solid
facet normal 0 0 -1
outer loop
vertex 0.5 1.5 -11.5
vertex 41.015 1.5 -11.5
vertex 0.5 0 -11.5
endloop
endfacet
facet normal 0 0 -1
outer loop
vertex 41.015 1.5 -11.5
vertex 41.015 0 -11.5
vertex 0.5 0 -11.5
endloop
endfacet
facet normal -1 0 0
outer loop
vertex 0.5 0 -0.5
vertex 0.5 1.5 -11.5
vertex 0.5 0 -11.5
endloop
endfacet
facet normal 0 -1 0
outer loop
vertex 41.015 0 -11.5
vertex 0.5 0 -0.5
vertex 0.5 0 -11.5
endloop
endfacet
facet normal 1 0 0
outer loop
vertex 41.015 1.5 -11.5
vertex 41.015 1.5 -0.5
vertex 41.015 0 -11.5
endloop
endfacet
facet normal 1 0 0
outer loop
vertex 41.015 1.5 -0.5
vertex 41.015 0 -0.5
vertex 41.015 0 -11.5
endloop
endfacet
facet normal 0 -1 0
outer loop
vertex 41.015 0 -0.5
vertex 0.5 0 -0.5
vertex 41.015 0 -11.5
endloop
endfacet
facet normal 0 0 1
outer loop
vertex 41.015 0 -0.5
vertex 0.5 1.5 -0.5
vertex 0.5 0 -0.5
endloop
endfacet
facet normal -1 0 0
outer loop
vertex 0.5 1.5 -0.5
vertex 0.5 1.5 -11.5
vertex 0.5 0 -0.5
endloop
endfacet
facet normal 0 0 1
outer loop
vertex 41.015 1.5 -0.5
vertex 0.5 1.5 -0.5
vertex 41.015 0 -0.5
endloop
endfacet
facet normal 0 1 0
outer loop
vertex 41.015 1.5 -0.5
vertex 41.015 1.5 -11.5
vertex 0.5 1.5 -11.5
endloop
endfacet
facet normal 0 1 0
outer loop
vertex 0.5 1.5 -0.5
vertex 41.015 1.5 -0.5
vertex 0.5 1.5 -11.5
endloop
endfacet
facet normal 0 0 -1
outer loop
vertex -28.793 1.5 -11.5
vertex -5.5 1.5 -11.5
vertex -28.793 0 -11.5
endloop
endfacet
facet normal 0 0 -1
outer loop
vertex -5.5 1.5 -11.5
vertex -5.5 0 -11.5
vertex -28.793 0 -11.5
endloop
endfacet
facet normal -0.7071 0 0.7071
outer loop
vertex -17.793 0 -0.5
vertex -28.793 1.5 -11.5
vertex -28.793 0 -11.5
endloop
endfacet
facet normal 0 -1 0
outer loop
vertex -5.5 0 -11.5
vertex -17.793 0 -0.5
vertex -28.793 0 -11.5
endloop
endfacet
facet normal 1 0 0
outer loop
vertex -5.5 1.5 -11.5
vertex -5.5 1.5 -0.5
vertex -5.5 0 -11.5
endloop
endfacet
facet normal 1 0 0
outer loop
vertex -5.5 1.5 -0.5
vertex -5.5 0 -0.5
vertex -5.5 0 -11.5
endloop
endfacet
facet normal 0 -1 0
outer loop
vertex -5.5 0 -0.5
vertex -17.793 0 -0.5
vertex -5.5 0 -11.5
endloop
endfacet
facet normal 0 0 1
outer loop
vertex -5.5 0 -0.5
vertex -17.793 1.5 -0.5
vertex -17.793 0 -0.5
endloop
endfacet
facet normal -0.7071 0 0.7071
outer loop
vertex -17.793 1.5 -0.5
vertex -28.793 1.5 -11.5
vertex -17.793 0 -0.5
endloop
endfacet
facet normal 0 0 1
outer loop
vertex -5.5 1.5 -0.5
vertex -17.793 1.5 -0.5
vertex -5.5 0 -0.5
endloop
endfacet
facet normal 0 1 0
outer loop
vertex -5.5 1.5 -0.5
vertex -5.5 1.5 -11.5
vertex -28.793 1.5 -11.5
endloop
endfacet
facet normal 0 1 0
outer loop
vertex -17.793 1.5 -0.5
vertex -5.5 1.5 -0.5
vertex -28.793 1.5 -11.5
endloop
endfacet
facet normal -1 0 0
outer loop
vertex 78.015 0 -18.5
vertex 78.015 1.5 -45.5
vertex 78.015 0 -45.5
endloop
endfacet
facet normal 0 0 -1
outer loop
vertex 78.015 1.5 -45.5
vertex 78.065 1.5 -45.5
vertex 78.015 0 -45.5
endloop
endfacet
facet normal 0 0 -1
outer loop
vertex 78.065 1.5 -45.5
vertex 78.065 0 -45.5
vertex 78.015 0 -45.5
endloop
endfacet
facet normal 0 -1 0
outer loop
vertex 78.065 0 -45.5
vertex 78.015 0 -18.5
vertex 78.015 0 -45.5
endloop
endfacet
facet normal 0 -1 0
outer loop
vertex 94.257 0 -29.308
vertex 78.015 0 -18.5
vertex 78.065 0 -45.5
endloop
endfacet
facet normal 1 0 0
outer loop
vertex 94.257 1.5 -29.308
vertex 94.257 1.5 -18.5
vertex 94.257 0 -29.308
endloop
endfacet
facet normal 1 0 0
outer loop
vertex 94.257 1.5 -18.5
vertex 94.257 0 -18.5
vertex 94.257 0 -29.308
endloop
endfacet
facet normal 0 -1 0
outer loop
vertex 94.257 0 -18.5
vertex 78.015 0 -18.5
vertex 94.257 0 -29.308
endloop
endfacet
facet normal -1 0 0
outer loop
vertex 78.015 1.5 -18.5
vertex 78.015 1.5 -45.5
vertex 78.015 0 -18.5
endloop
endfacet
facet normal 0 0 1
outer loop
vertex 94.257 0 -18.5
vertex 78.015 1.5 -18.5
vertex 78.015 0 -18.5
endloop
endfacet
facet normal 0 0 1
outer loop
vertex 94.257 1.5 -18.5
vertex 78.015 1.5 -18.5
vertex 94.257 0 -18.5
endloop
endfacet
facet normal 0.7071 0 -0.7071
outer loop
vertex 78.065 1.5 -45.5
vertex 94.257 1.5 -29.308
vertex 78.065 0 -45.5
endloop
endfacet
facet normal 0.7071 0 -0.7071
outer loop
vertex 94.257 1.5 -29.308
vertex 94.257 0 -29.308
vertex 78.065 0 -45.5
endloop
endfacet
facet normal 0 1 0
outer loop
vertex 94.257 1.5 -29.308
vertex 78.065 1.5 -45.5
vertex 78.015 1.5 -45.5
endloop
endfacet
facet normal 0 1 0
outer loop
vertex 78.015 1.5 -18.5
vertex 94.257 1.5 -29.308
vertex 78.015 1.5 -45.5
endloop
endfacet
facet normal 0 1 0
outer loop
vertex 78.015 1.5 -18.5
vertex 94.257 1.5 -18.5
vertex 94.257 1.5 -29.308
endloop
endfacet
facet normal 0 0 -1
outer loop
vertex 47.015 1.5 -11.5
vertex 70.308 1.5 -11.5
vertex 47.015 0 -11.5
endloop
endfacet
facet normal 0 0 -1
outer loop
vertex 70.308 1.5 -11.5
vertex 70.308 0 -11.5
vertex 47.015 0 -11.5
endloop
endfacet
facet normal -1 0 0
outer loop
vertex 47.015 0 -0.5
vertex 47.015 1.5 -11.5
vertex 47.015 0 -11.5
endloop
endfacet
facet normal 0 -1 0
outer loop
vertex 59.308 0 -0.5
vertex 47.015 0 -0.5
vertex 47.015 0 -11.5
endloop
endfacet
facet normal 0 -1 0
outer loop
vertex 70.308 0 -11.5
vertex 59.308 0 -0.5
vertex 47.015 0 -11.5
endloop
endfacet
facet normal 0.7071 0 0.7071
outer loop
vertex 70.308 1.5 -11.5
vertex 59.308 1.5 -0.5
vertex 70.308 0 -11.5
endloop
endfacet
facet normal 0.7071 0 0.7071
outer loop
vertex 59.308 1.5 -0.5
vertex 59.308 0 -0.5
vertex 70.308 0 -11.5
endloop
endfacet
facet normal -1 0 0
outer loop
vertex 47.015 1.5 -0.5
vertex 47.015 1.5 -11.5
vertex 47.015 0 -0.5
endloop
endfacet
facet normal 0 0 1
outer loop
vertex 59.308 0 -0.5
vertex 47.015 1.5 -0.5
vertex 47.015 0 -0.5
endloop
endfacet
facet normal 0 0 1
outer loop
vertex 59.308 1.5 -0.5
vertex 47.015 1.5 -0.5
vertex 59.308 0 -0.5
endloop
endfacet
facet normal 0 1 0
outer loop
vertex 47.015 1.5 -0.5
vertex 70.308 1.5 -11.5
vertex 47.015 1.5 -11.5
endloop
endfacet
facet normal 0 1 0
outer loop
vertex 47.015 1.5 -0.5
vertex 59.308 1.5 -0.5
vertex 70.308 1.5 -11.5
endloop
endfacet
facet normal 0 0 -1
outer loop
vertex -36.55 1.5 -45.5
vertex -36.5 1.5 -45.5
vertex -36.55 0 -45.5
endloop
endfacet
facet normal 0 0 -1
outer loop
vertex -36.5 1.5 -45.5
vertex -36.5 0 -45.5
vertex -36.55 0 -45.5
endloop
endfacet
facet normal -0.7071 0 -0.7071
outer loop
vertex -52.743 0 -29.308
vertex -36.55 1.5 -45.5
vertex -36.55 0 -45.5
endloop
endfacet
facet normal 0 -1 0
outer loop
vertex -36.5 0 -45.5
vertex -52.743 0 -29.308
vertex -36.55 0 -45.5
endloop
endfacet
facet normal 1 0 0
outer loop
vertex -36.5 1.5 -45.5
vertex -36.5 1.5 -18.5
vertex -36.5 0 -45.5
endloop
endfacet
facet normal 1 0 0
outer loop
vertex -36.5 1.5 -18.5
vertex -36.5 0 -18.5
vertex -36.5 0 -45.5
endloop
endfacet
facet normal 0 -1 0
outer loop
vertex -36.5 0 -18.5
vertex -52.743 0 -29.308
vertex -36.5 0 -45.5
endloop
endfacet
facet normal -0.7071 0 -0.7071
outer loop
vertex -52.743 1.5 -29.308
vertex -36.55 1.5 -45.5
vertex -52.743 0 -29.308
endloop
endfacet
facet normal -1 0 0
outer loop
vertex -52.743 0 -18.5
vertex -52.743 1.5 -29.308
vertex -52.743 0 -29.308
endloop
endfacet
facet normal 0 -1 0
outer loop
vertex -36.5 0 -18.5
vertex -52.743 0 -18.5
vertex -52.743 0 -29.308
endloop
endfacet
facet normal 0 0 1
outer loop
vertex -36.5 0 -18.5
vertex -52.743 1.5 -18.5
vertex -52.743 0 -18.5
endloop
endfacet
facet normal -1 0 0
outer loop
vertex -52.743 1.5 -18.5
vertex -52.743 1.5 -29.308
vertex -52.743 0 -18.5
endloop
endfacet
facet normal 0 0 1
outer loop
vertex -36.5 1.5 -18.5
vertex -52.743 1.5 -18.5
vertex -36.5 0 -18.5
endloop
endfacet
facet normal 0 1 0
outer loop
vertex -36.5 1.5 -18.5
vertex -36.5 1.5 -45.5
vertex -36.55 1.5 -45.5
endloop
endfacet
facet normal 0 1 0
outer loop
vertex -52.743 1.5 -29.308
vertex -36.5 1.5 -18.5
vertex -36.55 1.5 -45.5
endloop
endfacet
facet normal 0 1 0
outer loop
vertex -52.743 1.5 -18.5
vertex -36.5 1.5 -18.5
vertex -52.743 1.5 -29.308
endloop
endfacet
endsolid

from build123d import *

# Parameters (mm, degrees)
BOSS_EXTRUDE1_DEPTH   = 1.5
SKETCH1_W             = 40.514718626
SKETCH1_H             = 11
BOSS_EXTRUDE1_2_DEPTH = 1.5
BOSS_EXTRUDE1_3_DEPTH = 1.5
BOSS_EXTRUDE1_4_DEPTH = 1.5
BOSS_EXTRUDE1_5_DEPTH = 1.5


with BuildPart() as part:
    # Sketch1 → Boss-Extrude1 (new body)
    with BuildSketch(Plane(origin=(0, 0, 0), x_dir=(1, 0, 0), z_dir=(0, 1, 0))):
        Polygon((-36.5, 18.5), (-36.5, 45.5), (-36.550252532, 45.5), (-52.742640687, 29.307611845), (-52.742640687, 18.5), align=None)
    extrude(amount=BOSS_EXTRUDE1_DEPTH)


with BuildPart() as body_2:
    # Sketch1 → Boss-Extrude1 2 (new body)
    with BuildSketch(Plane(origin=(0, 0, 0), x_dir=(1, 0, 0), z_dir=(0, 1, 0))):
        with Locations((20.757359313, 6)):
            Rectangle(SKETCH1_W, SKETCH1_H)
    extrude(amount=BOSS_EXTRUDE1_2_DEPTH)


with BuildPart() as body_3:
    # Sketch1 → Boss-Extrude1 3 (new body)
    with BuildSketch(Plane(origin=(0, 0, 0), x_dir=(1, 0, 0), z_dir=(0, 1, 0))):
        Polygon((-17.792893219, 0.5), (-28.792893219, 11.5), (-5.5, 11.5), (-5.5, 0.5), align=None)
    extrude(amount=BOSS_EXTRUDE1_3_DEPTH)


with BuildPart() as body_4:
    # Sketch1 → Boss-Extrude1 4 (new body)
    with BuildSketch(Plane(origin=(0, 0, 0), x_dir=(1, 0, 0), z_dir=(0, 1, 0))):
        Polygon((47.014718626, 0.5), (59.307611845, 0.5), (70.307611845, 11.5), (47.014718626, 11.5), align=None)
    extrude(amount=BOSS_EXTRUDE1_4_DEPTH)


with BuildPart() as body_5:
    # Sketch1 → Boss-Extrude1 5 (new body)
    with BuildSketch(Plane(origin=(0, 0, 0), x_dir=(1, 0, 0), z_dir=(0, 1, 0))):
        Polygon((94.257359313, 18.5), (78.014718626, 18.5), (78.014718626, 45.5), (78.064971157, 45.5), (94.257359313, 29.307611845), align=None)
    extrude(amount=BOSS_EXTRUDE1_5_DEPTH)


solid = Compound([part.part, body_2.part, body_3.part, body_4.part, body_5.part])
